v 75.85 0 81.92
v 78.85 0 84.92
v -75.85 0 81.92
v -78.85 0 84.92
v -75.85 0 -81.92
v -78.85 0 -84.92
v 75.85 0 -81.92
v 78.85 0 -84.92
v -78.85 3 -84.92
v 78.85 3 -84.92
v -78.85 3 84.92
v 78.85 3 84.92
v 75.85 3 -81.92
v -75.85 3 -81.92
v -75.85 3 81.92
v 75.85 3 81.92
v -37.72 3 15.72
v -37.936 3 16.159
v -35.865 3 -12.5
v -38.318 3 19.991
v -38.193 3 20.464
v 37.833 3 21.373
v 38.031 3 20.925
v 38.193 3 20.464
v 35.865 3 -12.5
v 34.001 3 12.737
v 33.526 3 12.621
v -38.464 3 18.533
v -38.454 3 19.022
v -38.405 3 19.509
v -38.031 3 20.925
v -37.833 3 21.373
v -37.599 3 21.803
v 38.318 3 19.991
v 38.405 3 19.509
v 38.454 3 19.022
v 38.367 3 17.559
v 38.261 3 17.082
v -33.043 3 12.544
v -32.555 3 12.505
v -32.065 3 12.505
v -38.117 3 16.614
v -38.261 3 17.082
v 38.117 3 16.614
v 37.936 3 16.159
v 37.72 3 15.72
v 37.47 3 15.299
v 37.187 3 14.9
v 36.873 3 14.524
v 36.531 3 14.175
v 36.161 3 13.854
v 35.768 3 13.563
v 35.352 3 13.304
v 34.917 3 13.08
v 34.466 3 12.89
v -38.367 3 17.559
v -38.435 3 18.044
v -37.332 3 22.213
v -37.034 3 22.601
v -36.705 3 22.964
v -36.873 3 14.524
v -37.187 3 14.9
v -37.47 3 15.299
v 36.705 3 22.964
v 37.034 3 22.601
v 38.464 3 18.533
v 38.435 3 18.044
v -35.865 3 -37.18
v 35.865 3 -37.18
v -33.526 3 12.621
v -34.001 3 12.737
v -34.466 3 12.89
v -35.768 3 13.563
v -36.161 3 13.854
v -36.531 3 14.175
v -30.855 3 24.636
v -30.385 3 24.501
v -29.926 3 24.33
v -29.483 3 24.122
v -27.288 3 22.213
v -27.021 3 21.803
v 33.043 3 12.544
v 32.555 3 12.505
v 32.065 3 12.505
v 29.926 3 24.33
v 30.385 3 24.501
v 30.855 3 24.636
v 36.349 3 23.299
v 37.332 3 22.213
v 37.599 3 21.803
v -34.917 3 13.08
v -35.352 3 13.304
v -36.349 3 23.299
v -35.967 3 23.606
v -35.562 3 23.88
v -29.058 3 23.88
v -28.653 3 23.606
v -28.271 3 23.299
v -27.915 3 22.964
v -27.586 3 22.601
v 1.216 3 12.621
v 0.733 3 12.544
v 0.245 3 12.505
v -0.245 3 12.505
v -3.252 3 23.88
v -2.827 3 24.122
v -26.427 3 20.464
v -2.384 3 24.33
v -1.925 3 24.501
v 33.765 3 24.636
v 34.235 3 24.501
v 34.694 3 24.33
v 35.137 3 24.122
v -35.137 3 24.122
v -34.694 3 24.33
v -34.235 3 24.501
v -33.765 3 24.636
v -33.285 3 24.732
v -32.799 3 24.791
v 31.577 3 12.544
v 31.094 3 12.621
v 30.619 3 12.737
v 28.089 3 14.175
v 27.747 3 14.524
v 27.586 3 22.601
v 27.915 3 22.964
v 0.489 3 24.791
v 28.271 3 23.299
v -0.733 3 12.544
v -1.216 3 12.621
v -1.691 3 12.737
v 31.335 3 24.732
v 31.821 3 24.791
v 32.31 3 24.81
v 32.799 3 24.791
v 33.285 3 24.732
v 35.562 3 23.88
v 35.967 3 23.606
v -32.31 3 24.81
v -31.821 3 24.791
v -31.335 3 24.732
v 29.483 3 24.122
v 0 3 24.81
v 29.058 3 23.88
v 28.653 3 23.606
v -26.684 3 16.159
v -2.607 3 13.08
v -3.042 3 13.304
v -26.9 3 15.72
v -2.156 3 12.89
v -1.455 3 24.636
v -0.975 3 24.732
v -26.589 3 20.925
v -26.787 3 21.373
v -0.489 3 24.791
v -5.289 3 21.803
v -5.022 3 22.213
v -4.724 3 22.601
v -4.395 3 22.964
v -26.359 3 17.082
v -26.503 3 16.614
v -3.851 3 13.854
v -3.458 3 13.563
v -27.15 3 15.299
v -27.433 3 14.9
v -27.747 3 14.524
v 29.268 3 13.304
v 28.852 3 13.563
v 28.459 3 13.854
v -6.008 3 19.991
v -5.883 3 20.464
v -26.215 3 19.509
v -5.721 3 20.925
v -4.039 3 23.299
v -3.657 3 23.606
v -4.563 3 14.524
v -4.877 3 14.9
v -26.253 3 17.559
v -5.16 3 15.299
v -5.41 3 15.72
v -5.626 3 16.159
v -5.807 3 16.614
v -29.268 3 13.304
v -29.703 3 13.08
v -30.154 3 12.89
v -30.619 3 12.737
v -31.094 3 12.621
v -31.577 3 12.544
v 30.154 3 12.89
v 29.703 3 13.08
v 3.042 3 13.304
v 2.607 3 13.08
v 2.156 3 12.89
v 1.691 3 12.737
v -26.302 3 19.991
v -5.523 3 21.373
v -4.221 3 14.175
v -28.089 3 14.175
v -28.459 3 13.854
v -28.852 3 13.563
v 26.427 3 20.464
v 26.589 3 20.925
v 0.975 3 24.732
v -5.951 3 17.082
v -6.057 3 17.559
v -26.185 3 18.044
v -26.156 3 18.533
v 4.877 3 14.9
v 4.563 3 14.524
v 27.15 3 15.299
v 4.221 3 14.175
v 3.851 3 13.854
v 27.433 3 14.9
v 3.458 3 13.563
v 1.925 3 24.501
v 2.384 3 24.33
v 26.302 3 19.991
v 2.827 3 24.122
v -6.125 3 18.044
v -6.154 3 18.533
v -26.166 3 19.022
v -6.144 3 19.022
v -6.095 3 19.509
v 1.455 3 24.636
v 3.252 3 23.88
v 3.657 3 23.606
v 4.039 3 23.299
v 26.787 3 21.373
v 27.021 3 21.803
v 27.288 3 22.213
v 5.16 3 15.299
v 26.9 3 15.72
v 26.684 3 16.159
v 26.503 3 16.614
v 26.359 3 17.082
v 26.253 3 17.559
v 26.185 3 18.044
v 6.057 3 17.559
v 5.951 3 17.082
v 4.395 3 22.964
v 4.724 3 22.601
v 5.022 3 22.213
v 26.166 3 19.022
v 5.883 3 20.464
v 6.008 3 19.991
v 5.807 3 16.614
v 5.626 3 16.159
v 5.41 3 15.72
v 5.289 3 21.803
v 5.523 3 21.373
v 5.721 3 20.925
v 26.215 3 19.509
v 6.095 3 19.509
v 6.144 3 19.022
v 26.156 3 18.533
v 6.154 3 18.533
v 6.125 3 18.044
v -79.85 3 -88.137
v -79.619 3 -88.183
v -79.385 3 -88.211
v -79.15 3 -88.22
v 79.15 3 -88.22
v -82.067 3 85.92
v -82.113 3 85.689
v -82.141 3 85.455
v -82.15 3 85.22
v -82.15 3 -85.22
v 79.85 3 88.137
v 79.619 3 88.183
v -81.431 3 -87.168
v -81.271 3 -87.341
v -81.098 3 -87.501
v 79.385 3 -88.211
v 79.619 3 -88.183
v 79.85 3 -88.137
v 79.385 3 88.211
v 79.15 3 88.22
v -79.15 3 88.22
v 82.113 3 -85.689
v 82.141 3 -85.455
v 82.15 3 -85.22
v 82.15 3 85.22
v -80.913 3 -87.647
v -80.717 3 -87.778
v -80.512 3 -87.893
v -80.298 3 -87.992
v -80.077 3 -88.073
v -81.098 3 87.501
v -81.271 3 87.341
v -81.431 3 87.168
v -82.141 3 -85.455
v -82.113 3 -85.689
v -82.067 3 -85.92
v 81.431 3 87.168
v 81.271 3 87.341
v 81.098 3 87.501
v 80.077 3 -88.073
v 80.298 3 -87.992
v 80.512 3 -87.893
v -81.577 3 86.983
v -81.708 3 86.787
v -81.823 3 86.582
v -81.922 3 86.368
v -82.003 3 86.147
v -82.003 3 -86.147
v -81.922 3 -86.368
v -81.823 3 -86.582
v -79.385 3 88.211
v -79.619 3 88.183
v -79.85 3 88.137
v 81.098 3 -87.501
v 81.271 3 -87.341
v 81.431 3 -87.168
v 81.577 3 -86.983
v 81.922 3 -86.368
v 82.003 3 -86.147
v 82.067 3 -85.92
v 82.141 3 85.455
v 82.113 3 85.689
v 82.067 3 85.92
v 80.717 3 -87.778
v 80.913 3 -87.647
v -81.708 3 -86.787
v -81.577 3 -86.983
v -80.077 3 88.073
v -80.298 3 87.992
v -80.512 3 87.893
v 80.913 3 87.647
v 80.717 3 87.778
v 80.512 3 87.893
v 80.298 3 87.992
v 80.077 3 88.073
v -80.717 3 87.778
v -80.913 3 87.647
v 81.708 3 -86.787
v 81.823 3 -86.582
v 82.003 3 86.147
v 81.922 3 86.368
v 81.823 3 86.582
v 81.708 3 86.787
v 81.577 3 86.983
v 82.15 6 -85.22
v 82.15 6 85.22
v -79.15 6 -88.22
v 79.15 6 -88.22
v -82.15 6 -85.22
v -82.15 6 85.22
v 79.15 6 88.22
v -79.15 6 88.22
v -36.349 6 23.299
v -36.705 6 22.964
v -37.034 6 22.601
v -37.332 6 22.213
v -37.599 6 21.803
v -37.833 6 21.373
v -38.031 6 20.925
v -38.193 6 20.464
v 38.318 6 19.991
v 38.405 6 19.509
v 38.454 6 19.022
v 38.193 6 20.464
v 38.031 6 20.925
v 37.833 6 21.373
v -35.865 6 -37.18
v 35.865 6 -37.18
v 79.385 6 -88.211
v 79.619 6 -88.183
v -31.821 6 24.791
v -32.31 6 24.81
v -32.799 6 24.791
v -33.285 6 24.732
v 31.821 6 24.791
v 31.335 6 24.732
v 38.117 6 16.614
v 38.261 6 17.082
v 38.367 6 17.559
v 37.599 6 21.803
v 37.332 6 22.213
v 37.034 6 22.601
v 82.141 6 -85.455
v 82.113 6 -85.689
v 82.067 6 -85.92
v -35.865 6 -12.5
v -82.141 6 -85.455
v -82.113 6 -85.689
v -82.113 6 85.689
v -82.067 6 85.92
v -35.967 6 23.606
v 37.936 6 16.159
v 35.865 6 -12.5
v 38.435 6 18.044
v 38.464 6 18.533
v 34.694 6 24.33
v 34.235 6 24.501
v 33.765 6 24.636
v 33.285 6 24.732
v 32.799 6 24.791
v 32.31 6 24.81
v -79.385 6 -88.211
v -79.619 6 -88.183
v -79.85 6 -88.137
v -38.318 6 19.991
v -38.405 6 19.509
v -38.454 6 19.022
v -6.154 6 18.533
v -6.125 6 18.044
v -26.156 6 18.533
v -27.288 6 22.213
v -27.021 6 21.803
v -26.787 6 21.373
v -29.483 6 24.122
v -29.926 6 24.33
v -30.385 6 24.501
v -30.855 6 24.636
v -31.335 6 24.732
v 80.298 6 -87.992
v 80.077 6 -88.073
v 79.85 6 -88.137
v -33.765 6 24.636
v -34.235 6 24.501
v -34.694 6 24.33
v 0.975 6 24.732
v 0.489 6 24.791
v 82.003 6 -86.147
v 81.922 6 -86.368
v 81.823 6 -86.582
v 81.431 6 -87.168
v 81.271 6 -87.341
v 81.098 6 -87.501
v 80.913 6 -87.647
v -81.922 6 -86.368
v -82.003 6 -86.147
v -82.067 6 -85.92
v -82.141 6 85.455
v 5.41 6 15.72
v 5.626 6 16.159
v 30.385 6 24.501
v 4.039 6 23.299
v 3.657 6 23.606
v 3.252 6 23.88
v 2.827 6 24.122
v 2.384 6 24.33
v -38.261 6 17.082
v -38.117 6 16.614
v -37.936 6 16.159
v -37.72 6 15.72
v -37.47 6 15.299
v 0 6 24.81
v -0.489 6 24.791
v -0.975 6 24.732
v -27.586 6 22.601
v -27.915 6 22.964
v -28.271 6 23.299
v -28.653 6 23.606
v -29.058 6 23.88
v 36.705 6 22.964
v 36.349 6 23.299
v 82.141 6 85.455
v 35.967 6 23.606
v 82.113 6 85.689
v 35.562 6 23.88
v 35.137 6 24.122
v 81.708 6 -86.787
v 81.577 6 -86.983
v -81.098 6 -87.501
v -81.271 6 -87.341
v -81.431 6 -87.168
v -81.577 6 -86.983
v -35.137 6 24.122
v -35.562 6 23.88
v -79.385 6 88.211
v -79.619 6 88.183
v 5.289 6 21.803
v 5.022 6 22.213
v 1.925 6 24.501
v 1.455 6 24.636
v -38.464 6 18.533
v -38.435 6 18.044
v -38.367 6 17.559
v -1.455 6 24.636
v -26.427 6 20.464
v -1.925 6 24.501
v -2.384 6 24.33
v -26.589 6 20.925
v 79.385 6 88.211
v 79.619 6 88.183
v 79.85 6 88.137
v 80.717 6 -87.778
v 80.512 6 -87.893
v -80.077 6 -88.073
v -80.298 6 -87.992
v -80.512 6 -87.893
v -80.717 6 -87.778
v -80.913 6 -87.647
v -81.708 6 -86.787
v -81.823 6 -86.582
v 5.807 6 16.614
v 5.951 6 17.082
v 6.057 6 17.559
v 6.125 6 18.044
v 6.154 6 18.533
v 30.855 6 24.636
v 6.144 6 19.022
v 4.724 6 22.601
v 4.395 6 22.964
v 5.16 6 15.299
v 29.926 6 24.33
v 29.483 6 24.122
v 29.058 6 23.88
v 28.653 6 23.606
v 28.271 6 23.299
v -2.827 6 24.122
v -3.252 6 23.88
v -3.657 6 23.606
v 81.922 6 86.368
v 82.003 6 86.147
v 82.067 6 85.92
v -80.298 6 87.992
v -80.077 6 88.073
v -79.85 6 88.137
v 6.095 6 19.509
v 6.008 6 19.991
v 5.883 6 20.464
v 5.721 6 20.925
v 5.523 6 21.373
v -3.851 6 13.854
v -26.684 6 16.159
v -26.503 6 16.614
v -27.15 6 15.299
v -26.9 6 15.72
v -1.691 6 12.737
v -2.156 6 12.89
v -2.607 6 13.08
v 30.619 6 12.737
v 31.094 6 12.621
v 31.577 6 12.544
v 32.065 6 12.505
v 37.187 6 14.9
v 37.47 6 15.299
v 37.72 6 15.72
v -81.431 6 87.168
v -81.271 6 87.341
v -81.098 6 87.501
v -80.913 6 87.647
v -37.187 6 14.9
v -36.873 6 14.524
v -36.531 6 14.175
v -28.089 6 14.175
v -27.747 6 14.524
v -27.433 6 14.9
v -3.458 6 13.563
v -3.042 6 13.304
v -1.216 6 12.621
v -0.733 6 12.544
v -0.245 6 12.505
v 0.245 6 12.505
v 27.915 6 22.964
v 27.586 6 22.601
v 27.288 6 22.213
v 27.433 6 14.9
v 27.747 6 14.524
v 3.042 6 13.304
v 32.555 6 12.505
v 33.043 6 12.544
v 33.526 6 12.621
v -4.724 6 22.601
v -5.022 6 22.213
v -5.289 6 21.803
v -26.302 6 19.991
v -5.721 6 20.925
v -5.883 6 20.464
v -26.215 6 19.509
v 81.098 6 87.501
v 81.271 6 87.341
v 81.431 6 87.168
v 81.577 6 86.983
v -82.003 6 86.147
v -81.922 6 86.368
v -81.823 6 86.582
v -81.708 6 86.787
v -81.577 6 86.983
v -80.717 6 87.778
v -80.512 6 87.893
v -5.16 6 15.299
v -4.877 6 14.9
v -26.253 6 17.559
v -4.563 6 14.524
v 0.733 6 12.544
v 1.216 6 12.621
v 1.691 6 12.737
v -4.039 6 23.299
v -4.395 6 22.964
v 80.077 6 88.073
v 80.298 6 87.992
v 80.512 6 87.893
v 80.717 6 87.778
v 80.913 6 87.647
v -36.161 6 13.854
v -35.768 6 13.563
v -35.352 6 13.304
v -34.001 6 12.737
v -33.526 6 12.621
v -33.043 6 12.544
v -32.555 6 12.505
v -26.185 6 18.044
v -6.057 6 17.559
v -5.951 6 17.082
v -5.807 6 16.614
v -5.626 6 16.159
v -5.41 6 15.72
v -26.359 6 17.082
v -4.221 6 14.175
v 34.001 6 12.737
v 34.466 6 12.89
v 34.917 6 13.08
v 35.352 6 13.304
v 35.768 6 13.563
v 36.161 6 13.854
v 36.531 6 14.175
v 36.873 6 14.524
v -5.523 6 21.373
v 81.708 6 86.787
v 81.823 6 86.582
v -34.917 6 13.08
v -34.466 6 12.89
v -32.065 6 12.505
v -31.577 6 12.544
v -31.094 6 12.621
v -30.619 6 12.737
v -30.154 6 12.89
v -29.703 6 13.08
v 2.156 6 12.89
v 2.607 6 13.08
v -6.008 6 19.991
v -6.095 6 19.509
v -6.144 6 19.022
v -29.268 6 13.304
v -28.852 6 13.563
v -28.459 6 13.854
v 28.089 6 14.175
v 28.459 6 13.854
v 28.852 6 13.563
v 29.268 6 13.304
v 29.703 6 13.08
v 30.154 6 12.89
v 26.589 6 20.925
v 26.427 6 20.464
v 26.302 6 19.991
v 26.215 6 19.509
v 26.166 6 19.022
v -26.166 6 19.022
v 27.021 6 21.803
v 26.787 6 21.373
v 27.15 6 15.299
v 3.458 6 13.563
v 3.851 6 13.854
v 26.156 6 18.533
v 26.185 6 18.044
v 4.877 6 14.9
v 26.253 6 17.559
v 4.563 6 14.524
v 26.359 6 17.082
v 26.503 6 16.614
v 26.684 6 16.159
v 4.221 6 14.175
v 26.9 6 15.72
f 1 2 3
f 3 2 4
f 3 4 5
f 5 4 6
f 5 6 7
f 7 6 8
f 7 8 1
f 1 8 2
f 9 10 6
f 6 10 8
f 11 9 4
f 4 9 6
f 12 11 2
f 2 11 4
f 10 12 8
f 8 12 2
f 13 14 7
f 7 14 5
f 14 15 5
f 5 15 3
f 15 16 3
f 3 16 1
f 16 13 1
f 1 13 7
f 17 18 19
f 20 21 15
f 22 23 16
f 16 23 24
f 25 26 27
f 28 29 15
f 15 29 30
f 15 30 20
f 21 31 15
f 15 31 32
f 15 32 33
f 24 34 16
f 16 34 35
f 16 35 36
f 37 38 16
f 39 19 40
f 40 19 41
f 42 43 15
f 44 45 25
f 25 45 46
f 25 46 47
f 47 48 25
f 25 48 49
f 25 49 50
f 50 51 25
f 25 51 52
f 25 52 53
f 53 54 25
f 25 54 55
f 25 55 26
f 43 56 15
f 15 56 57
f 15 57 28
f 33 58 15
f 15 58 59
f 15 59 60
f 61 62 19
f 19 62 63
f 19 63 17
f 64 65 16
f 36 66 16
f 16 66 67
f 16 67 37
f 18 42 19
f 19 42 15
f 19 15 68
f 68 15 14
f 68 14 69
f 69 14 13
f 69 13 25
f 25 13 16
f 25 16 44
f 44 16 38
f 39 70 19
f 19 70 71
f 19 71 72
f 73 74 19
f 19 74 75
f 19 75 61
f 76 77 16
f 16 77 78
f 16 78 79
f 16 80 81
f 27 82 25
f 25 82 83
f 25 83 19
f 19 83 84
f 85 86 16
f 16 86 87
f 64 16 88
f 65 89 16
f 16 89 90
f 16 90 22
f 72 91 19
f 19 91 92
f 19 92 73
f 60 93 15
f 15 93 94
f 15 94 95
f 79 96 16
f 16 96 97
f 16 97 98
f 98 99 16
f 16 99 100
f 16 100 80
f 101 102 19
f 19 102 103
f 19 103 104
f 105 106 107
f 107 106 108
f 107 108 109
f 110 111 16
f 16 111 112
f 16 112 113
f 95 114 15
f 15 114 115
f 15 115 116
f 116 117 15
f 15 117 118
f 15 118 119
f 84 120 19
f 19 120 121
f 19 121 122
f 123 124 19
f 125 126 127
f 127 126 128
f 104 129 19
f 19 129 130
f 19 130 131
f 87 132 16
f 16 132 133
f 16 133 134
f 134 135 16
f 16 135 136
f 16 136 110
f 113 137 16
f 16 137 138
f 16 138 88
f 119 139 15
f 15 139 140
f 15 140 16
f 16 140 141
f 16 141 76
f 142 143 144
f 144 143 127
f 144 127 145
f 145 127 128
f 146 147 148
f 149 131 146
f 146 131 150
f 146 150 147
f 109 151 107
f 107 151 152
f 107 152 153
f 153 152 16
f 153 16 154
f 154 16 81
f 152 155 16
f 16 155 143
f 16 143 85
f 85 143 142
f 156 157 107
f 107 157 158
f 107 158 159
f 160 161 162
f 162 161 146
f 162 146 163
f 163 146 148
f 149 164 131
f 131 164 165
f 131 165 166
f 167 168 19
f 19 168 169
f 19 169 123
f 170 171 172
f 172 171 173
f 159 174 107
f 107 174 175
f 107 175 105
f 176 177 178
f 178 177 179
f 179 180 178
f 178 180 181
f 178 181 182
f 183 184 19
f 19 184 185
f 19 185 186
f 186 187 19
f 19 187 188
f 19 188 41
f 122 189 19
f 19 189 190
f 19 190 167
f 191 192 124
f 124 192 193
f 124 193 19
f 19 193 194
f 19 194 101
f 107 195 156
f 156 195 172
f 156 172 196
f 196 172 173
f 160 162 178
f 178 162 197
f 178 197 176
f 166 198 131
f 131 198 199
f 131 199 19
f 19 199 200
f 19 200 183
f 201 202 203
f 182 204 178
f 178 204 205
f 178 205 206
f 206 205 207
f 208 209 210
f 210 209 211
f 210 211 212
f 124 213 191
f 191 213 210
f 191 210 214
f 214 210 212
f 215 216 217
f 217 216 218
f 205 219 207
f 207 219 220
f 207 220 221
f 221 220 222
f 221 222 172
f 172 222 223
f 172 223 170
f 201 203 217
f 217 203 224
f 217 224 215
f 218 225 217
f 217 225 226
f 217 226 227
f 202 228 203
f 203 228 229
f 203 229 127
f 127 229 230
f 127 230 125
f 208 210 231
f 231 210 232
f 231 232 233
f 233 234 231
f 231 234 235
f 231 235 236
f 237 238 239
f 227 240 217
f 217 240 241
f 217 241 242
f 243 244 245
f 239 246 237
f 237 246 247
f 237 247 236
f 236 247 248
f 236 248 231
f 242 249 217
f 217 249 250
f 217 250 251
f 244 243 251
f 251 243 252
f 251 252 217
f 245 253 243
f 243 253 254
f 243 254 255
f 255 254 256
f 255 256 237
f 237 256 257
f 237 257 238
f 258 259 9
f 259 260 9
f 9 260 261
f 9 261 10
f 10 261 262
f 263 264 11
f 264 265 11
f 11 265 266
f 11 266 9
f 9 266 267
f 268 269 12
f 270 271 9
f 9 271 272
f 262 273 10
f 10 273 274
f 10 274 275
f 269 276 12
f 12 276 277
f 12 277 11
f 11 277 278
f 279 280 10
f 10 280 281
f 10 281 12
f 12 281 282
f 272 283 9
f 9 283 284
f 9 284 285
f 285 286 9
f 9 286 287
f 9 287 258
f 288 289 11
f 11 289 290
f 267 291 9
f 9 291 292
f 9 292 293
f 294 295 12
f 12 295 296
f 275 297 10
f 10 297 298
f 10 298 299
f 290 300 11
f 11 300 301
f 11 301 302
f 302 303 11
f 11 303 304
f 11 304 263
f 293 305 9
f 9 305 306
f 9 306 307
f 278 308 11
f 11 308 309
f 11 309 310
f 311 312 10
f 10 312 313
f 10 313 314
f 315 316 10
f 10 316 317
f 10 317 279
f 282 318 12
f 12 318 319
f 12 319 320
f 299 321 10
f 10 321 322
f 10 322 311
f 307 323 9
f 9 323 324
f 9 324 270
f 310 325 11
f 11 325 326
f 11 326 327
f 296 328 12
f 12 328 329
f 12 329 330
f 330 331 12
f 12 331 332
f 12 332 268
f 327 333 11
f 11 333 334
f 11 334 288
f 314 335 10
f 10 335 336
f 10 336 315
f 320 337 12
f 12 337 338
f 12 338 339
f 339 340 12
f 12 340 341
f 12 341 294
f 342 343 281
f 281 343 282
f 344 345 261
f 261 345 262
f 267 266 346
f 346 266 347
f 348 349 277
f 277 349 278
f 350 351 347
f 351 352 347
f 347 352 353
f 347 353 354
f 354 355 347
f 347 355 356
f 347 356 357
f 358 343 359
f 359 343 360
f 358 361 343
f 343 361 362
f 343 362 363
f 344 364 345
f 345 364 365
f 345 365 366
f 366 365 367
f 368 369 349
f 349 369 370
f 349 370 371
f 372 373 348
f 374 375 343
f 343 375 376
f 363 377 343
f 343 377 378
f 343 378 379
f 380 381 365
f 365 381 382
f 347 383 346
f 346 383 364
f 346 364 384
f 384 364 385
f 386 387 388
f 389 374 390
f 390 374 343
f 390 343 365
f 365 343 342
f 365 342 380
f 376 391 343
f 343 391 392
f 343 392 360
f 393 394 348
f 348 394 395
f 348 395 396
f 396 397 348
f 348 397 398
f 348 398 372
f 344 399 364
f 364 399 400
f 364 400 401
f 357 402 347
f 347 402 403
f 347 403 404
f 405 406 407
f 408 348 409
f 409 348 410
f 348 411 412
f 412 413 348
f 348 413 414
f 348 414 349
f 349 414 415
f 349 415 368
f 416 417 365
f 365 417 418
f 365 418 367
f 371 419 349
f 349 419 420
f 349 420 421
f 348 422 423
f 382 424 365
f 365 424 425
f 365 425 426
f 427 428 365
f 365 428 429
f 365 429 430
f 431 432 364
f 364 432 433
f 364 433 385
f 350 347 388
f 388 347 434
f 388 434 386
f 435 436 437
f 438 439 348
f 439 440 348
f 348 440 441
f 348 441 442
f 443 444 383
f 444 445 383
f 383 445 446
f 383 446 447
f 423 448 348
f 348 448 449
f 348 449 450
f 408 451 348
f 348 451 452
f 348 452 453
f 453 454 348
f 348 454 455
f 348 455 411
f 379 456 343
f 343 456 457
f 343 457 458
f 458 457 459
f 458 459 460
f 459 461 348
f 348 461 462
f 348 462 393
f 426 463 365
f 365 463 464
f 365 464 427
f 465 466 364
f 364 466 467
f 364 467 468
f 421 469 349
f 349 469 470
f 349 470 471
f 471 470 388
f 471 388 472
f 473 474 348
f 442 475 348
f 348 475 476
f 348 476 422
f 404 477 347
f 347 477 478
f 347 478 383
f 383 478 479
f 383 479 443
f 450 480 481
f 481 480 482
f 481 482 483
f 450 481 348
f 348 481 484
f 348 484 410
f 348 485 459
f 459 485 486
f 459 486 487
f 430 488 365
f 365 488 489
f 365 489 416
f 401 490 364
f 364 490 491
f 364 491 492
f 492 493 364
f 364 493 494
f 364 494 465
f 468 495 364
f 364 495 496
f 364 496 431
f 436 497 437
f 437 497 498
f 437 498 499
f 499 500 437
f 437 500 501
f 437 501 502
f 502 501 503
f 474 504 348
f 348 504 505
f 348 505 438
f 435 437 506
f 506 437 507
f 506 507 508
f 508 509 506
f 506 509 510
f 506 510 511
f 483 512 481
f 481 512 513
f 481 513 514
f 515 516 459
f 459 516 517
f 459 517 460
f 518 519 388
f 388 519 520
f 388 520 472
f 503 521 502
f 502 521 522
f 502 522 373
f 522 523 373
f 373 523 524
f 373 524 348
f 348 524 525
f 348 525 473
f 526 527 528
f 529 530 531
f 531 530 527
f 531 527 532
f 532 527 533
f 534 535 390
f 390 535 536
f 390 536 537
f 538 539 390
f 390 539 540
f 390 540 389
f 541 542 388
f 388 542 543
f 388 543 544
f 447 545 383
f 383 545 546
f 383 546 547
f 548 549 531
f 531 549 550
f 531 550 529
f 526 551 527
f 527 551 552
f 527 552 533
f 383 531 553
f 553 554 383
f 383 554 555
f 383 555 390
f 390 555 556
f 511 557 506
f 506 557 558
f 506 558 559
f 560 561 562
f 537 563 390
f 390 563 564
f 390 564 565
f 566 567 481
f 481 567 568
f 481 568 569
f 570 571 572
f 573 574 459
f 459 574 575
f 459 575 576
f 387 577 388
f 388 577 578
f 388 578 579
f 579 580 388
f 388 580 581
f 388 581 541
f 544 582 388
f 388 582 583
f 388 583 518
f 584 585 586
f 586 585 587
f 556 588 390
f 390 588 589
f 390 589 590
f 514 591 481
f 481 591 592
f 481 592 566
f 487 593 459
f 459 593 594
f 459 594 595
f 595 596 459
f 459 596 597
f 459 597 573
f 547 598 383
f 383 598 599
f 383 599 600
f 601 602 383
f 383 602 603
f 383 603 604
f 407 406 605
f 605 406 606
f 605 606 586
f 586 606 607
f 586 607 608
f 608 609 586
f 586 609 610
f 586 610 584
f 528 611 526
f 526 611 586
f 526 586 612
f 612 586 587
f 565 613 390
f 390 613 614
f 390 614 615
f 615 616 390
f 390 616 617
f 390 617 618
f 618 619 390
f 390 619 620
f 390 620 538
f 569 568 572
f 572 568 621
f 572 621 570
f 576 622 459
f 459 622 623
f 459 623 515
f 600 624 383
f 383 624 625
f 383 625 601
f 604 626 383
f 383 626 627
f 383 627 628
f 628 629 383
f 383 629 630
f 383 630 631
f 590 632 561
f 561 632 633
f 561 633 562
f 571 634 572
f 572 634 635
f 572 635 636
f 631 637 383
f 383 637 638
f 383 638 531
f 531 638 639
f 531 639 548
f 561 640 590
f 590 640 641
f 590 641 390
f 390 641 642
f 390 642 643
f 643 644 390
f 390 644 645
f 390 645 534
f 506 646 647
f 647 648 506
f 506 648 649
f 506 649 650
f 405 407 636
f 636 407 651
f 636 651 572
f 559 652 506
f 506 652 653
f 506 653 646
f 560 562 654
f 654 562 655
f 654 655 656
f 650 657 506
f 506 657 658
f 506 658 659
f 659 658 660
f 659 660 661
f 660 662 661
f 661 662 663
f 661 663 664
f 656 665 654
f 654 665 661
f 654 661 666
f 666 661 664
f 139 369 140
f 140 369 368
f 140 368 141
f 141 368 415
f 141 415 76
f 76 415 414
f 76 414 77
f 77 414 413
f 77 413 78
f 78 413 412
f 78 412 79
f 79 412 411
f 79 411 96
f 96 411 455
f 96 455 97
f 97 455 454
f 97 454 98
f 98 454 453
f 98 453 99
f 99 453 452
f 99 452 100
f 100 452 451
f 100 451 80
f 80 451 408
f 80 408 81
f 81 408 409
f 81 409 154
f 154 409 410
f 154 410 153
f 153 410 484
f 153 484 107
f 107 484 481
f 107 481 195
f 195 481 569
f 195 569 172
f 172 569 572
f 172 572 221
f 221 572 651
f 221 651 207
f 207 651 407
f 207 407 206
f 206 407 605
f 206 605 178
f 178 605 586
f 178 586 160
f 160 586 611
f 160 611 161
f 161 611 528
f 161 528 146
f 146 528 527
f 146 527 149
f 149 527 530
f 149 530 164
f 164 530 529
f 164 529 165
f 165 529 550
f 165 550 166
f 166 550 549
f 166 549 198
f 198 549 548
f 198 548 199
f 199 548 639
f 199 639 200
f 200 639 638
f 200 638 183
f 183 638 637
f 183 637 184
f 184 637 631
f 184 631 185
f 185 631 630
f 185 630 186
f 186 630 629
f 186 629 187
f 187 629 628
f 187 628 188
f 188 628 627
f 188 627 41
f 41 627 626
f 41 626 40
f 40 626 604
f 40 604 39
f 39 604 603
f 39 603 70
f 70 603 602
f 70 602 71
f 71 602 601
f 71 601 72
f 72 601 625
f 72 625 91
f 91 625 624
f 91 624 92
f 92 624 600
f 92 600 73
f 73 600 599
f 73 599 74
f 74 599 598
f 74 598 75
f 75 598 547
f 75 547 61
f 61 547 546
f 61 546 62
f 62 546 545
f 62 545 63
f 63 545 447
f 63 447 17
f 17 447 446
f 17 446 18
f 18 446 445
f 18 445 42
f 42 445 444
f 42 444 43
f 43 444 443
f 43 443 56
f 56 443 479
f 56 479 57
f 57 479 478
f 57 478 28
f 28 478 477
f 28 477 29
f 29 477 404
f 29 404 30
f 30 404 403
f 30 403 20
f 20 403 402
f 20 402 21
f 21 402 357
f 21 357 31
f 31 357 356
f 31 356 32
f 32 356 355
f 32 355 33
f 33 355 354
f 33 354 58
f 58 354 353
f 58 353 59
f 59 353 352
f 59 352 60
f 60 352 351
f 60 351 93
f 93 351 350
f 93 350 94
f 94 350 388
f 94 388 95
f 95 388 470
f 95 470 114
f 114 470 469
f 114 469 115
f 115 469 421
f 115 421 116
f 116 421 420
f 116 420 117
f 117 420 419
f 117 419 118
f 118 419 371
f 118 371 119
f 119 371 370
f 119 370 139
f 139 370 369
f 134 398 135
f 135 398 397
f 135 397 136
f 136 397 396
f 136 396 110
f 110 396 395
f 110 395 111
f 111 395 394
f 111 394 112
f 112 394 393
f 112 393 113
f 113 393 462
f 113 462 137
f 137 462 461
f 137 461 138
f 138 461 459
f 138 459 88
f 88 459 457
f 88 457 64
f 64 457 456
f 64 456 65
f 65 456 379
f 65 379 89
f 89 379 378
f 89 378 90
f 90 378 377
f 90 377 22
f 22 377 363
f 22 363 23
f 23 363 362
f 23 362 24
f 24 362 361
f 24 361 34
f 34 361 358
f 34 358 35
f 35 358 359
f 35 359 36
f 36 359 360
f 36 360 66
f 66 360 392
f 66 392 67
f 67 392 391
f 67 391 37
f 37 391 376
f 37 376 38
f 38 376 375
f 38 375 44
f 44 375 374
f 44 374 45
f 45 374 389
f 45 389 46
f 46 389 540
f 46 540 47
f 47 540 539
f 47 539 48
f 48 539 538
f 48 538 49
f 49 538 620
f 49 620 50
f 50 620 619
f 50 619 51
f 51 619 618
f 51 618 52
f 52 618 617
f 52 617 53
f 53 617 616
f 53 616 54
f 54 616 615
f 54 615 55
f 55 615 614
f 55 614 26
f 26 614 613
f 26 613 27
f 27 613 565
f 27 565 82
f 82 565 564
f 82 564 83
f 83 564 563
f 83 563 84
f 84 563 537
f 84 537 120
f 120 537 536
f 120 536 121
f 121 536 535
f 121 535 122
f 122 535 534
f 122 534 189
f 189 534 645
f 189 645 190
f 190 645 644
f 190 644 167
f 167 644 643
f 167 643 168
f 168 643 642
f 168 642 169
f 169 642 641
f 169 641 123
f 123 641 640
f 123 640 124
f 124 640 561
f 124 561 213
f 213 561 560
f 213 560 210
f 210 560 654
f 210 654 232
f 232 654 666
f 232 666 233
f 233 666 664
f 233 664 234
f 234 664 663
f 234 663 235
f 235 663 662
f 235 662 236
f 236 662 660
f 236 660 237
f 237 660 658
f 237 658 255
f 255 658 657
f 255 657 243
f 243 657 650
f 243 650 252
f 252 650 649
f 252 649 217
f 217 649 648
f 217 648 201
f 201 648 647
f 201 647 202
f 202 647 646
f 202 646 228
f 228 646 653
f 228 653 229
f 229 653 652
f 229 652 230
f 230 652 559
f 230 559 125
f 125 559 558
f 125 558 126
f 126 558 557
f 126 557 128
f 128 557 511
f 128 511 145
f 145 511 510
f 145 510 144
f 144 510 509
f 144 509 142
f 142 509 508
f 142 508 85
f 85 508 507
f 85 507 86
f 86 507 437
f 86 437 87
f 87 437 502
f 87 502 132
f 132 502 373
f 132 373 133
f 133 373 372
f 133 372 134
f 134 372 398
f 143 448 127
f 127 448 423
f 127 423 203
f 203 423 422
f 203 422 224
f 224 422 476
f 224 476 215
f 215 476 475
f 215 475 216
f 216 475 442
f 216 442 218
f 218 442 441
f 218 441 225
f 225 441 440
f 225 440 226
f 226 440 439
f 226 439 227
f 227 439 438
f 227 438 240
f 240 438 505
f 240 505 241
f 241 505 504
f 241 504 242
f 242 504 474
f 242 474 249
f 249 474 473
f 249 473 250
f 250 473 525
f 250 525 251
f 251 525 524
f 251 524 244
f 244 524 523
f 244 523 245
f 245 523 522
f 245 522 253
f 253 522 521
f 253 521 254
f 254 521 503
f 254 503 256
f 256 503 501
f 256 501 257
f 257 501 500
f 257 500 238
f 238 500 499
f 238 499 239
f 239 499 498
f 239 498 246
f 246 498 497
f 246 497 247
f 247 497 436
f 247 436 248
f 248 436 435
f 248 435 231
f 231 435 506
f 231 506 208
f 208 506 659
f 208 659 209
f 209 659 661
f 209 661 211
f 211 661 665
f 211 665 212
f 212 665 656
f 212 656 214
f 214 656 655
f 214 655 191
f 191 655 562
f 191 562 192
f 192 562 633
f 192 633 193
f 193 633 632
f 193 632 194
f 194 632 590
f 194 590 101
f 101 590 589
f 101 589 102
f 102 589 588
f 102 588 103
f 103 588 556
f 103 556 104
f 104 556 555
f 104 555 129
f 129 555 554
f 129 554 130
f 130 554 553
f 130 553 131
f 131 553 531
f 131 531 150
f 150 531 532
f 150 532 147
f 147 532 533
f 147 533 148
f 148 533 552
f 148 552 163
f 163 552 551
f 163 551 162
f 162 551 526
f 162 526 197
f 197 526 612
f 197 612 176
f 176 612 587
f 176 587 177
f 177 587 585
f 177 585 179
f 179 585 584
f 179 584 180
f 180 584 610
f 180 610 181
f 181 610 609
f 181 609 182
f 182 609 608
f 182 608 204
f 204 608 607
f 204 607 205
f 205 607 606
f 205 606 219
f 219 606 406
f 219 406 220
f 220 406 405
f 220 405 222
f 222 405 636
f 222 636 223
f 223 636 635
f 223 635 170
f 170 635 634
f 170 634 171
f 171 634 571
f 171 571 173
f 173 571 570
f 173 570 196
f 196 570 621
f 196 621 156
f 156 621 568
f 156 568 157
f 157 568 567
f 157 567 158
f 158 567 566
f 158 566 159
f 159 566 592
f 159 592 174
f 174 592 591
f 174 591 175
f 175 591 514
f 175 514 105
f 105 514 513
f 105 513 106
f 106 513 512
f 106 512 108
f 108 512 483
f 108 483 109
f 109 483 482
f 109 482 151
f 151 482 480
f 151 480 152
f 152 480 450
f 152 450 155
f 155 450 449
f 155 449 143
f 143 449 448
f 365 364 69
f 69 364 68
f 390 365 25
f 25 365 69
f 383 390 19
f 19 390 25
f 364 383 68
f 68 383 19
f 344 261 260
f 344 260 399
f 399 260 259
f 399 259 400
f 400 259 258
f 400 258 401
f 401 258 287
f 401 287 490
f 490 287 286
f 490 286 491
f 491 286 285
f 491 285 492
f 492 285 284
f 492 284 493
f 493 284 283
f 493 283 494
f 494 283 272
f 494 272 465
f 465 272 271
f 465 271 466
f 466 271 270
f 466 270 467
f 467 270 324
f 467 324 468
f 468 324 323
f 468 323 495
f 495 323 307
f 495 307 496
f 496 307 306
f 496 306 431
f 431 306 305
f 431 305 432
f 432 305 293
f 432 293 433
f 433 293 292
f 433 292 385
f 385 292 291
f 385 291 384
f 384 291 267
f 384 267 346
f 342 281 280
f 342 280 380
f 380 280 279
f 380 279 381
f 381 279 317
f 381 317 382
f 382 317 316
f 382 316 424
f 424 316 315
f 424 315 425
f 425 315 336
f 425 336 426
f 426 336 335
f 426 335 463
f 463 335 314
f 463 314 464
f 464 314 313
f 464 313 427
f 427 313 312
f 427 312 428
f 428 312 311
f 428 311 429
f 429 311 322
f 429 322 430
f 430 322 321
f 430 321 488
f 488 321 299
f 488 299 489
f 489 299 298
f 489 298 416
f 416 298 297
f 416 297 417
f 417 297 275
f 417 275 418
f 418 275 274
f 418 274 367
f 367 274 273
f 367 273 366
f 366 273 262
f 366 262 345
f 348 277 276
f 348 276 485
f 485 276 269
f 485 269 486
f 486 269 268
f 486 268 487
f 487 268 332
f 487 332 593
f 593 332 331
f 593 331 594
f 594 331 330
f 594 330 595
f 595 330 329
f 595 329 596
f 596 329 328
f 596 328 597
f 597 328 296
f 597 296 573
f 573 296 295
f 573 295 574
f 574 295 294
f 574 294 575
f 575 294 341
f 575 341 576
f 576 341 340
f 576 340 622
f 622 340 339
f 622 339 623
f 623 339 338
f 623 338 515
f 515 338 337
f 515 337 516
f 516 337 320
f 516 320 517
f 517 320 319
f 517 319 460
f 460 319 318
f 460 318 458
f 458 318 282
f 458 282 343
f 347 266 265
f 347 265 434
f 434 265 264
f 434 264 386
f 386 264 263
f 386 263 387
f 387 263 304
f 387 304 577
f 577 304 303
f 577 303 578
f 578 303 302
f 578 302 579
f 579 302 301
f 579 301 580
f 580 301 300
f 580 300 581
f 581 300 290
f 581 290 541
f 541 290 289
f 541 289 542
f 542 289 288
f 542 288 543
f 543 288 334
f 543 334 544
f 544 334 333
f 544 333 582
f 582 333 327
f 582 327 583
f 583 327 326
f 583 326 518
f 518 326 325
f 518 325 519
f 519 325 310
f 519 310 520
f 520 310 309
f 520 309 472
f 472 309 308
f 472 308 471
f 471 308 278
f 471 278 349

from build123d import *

# Parameters (mm, degrees)
SKETCH1_W           = 157.7
SKETCH1_H           = 169.84
SKETCH1_W_2         = 151.7
SKETCH1_H_2         = 163.84
BOSS_EXTRUDE1_DEPTH = 3
SKETCH2_W           = 164.3
SKETCH2_H           = 176.44
BOSS_EXTRUDE2_DEPTH = 3
SKETCH3_R           = 6.155
SKETCH3_W           = 71.73
SKETCH3_H           = 24.68
CUT_EXTRUDE1_DEPTH  = 3
FILLET1_R           = 3


with BuildPart() as part:
    # Sketch1 → Boss-Extrude1 (new body)
    with BuildSketch(Plane(origin=(0, 0, 0), x_dir=(1, 0, 0), z_dir=(0, 1, 0))):
        Rectangle(SKETCH1_W, SKETCH1_H)
        Rectangle(SKETCH1_W_2, SKETCH1_H_2, mode=Mode.SUBTRACT)
    extrude(amount=BOSS_EXTRUDE1_DEPTH)

    # Sketch2 → Boss-Extrude2 (add)
    with BuildSketch(Plane(origin=(0, 3, 0), x_dir=(1, 0, 0), z_dir=(0, 1, 0))):
        Rectangle(SKETCH2_W, SKETCH2_H)
    extrude(amount=BOSS_EXTRUDE2_DEPTH)

    # Sketch3 → Cut-Extrude1 (cut)
    with BuildSketch(Plane(origin=(0, 6, 0), x_dir=(1, 0, 0), z_dir=(0, 1, 0))):
        with Locations((0, -18.655)):
            Circle(SKETCH3_R)
        with Locations((32.31, -18.655)):
            Circle(SKETCH3_R)
        with Locations((-32.31, -18.655)):
            Circle(SKETCH3_R)
        with Locations((0, 24.84)):
            Rectangle(SKETCH3_W, SKETCH3_H)
    extrude(amount=-CUT_EXTRUDE1_DEPTH, mode=Mode.SUBTRACT)

    # Fillet1
    fillet1_edges = [part.edges().sort_by_distance(p)[0] for p in [
        (82.15, 4.5, 88.22),
        (82.15, 4.5, -88.22),
        (-82.15, 4.5, -88.22),
        (-82.15, 4.5, 88.22),
    ]]
    fillet(fillet1_edges, radius=FILLET1_R)


solid = part.part
